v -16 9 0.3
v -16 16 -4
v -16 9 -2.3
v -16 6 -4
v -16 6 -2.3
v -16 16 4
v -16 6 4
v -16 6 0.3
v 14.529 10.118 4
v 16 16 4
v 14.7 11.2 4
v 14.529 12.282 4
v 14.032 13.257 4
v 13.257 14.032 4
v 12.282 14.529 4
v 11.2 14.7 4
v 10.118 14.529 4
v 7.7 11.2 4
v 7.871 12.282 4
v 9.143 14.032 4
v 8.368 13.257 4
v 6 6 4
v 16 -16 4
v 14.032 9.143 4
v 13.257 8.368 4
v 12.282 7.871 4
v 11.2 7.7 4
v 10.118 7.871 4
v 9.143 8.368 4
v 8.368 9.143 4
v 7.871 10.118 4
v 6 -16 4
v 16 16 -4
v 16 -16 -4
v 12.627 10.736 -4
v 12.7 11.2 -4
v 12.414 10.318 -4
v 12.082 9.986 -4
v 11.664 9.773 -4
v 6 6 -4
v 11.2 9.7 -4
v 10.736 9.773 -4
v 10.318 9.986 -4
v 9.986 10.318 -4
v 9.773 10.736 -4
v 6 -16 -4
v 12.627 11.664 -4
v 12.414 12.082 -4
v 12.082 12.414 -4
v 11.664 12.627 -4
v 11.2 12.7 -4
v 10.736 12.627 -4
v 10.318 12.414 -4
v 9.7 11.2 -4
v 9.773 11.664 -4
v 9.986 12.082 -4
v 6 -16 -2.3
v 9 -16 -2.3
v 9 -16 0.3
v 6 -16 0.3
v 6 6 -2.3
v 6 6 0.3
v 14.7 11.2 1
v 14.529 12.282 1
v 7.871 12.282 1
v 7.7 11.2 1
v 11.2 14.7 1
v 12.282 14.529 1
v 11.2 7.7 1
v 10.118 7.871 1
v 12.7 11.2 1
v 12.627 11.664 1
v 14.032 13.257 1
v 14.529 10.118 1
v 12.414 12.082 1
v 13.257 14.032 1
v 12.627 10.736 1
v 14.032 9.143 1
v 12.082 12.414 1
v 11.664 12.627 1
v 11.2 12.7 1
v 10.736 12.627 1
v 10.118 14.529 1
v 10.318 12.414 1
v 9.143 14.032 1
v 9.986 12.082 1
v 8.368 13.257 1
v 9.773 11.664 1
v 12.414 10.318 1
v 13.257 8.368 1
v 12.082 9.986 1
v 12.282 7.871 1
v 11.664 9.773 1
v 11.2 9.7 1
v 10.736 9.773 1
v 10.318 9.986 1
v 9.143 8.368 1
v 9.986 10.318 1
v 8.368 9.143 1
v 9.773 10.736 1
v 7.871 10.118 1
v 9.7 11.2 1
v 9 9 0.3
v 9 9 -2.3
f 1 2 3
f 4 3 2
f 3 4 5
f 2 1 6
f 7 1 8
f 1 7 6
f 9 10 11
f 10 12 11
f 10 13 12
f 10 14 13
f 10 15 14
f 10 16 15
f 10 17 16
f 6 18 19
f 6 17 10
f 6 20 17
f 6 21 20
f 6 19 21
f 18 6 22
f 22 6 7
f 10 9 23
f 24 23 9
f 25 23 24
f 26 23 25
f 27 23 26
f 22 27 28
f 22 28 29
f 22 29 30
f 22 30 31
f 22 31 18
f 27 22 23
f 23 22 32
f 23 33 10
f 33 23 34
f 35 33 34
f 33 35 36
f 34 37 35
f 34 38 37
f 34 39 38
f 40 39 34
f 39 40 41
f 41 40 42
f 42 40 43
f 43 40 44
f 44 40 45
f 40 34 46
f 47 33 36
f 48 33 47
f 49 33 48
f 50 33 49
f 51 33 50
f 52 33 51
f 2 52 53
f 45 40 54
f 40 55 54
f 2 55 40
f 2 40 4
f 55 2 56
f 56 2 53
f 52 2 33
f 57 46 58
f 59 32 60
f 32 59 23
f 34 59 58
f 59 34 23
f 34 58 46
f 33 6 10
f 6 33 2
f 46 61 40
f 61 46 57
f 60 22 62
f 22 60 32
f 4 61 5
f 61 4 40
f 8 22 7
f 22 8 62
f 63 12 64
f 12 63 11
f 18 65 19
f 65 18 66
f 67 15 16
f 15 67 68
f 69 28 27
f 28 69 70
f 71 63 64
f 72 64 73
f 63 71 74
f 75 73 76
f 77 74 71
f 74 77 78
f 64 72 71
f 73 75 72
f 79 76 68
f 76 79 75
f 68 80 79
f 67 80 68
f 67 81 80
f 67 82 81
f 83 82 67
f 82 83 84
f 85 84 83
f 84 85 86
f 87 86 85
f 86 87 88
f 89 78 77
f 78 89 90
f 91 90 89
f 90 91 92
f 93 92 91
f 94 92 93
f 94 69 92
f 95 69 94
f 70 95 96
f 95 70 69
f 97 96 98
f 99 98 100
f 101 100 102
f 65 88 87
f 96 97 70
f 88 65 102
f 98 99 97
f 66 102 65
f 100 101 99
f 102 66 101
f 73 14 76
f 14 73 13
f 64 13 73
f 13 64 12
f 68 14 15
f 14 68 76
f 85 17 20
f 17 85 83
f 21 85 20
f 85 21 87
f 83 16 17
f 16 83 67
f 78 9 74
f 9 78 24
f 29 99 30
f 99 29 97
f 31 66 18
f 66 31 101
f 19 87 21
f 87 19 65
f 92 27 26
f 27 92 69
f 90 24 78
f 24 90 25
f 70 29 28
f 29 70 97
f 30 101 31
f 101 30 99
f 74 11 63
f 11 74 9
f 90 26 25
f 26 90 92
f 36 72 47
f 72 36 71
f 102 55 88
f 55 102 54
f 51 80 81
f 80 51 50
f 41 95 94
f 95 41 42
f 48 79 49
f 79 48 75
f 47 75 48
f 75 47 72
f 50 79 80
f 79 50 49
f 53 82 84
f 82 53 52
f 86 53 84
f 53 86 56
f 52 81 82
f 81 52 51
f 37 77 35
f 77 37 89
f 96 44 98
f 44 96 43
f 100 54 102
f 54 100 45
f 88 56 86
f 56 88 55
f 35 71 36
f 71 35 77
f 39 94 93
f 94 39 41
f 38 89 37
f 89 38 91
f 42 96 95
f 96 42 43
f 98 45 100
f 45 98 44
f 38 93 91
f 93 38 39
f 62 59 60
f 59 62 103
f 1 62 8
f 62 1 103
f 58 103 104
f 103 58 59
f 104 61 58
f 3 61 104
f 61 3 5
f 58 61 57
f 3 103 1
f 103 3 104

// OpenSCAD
difference() {
difference() {
cube([32,32,8], center=true);
translate([-8,-8,4])
cube([28,28,30], center=true);
}
translate([-5, -5, -1])
cube([28,28, 2.6], center=true);

translate([11.2,11.2,3]) {
    cylinder(d=7, h=4, $fn=20, center=true);
    cylinder(d=3, h=20, $fn=20, center=true);
}
}
